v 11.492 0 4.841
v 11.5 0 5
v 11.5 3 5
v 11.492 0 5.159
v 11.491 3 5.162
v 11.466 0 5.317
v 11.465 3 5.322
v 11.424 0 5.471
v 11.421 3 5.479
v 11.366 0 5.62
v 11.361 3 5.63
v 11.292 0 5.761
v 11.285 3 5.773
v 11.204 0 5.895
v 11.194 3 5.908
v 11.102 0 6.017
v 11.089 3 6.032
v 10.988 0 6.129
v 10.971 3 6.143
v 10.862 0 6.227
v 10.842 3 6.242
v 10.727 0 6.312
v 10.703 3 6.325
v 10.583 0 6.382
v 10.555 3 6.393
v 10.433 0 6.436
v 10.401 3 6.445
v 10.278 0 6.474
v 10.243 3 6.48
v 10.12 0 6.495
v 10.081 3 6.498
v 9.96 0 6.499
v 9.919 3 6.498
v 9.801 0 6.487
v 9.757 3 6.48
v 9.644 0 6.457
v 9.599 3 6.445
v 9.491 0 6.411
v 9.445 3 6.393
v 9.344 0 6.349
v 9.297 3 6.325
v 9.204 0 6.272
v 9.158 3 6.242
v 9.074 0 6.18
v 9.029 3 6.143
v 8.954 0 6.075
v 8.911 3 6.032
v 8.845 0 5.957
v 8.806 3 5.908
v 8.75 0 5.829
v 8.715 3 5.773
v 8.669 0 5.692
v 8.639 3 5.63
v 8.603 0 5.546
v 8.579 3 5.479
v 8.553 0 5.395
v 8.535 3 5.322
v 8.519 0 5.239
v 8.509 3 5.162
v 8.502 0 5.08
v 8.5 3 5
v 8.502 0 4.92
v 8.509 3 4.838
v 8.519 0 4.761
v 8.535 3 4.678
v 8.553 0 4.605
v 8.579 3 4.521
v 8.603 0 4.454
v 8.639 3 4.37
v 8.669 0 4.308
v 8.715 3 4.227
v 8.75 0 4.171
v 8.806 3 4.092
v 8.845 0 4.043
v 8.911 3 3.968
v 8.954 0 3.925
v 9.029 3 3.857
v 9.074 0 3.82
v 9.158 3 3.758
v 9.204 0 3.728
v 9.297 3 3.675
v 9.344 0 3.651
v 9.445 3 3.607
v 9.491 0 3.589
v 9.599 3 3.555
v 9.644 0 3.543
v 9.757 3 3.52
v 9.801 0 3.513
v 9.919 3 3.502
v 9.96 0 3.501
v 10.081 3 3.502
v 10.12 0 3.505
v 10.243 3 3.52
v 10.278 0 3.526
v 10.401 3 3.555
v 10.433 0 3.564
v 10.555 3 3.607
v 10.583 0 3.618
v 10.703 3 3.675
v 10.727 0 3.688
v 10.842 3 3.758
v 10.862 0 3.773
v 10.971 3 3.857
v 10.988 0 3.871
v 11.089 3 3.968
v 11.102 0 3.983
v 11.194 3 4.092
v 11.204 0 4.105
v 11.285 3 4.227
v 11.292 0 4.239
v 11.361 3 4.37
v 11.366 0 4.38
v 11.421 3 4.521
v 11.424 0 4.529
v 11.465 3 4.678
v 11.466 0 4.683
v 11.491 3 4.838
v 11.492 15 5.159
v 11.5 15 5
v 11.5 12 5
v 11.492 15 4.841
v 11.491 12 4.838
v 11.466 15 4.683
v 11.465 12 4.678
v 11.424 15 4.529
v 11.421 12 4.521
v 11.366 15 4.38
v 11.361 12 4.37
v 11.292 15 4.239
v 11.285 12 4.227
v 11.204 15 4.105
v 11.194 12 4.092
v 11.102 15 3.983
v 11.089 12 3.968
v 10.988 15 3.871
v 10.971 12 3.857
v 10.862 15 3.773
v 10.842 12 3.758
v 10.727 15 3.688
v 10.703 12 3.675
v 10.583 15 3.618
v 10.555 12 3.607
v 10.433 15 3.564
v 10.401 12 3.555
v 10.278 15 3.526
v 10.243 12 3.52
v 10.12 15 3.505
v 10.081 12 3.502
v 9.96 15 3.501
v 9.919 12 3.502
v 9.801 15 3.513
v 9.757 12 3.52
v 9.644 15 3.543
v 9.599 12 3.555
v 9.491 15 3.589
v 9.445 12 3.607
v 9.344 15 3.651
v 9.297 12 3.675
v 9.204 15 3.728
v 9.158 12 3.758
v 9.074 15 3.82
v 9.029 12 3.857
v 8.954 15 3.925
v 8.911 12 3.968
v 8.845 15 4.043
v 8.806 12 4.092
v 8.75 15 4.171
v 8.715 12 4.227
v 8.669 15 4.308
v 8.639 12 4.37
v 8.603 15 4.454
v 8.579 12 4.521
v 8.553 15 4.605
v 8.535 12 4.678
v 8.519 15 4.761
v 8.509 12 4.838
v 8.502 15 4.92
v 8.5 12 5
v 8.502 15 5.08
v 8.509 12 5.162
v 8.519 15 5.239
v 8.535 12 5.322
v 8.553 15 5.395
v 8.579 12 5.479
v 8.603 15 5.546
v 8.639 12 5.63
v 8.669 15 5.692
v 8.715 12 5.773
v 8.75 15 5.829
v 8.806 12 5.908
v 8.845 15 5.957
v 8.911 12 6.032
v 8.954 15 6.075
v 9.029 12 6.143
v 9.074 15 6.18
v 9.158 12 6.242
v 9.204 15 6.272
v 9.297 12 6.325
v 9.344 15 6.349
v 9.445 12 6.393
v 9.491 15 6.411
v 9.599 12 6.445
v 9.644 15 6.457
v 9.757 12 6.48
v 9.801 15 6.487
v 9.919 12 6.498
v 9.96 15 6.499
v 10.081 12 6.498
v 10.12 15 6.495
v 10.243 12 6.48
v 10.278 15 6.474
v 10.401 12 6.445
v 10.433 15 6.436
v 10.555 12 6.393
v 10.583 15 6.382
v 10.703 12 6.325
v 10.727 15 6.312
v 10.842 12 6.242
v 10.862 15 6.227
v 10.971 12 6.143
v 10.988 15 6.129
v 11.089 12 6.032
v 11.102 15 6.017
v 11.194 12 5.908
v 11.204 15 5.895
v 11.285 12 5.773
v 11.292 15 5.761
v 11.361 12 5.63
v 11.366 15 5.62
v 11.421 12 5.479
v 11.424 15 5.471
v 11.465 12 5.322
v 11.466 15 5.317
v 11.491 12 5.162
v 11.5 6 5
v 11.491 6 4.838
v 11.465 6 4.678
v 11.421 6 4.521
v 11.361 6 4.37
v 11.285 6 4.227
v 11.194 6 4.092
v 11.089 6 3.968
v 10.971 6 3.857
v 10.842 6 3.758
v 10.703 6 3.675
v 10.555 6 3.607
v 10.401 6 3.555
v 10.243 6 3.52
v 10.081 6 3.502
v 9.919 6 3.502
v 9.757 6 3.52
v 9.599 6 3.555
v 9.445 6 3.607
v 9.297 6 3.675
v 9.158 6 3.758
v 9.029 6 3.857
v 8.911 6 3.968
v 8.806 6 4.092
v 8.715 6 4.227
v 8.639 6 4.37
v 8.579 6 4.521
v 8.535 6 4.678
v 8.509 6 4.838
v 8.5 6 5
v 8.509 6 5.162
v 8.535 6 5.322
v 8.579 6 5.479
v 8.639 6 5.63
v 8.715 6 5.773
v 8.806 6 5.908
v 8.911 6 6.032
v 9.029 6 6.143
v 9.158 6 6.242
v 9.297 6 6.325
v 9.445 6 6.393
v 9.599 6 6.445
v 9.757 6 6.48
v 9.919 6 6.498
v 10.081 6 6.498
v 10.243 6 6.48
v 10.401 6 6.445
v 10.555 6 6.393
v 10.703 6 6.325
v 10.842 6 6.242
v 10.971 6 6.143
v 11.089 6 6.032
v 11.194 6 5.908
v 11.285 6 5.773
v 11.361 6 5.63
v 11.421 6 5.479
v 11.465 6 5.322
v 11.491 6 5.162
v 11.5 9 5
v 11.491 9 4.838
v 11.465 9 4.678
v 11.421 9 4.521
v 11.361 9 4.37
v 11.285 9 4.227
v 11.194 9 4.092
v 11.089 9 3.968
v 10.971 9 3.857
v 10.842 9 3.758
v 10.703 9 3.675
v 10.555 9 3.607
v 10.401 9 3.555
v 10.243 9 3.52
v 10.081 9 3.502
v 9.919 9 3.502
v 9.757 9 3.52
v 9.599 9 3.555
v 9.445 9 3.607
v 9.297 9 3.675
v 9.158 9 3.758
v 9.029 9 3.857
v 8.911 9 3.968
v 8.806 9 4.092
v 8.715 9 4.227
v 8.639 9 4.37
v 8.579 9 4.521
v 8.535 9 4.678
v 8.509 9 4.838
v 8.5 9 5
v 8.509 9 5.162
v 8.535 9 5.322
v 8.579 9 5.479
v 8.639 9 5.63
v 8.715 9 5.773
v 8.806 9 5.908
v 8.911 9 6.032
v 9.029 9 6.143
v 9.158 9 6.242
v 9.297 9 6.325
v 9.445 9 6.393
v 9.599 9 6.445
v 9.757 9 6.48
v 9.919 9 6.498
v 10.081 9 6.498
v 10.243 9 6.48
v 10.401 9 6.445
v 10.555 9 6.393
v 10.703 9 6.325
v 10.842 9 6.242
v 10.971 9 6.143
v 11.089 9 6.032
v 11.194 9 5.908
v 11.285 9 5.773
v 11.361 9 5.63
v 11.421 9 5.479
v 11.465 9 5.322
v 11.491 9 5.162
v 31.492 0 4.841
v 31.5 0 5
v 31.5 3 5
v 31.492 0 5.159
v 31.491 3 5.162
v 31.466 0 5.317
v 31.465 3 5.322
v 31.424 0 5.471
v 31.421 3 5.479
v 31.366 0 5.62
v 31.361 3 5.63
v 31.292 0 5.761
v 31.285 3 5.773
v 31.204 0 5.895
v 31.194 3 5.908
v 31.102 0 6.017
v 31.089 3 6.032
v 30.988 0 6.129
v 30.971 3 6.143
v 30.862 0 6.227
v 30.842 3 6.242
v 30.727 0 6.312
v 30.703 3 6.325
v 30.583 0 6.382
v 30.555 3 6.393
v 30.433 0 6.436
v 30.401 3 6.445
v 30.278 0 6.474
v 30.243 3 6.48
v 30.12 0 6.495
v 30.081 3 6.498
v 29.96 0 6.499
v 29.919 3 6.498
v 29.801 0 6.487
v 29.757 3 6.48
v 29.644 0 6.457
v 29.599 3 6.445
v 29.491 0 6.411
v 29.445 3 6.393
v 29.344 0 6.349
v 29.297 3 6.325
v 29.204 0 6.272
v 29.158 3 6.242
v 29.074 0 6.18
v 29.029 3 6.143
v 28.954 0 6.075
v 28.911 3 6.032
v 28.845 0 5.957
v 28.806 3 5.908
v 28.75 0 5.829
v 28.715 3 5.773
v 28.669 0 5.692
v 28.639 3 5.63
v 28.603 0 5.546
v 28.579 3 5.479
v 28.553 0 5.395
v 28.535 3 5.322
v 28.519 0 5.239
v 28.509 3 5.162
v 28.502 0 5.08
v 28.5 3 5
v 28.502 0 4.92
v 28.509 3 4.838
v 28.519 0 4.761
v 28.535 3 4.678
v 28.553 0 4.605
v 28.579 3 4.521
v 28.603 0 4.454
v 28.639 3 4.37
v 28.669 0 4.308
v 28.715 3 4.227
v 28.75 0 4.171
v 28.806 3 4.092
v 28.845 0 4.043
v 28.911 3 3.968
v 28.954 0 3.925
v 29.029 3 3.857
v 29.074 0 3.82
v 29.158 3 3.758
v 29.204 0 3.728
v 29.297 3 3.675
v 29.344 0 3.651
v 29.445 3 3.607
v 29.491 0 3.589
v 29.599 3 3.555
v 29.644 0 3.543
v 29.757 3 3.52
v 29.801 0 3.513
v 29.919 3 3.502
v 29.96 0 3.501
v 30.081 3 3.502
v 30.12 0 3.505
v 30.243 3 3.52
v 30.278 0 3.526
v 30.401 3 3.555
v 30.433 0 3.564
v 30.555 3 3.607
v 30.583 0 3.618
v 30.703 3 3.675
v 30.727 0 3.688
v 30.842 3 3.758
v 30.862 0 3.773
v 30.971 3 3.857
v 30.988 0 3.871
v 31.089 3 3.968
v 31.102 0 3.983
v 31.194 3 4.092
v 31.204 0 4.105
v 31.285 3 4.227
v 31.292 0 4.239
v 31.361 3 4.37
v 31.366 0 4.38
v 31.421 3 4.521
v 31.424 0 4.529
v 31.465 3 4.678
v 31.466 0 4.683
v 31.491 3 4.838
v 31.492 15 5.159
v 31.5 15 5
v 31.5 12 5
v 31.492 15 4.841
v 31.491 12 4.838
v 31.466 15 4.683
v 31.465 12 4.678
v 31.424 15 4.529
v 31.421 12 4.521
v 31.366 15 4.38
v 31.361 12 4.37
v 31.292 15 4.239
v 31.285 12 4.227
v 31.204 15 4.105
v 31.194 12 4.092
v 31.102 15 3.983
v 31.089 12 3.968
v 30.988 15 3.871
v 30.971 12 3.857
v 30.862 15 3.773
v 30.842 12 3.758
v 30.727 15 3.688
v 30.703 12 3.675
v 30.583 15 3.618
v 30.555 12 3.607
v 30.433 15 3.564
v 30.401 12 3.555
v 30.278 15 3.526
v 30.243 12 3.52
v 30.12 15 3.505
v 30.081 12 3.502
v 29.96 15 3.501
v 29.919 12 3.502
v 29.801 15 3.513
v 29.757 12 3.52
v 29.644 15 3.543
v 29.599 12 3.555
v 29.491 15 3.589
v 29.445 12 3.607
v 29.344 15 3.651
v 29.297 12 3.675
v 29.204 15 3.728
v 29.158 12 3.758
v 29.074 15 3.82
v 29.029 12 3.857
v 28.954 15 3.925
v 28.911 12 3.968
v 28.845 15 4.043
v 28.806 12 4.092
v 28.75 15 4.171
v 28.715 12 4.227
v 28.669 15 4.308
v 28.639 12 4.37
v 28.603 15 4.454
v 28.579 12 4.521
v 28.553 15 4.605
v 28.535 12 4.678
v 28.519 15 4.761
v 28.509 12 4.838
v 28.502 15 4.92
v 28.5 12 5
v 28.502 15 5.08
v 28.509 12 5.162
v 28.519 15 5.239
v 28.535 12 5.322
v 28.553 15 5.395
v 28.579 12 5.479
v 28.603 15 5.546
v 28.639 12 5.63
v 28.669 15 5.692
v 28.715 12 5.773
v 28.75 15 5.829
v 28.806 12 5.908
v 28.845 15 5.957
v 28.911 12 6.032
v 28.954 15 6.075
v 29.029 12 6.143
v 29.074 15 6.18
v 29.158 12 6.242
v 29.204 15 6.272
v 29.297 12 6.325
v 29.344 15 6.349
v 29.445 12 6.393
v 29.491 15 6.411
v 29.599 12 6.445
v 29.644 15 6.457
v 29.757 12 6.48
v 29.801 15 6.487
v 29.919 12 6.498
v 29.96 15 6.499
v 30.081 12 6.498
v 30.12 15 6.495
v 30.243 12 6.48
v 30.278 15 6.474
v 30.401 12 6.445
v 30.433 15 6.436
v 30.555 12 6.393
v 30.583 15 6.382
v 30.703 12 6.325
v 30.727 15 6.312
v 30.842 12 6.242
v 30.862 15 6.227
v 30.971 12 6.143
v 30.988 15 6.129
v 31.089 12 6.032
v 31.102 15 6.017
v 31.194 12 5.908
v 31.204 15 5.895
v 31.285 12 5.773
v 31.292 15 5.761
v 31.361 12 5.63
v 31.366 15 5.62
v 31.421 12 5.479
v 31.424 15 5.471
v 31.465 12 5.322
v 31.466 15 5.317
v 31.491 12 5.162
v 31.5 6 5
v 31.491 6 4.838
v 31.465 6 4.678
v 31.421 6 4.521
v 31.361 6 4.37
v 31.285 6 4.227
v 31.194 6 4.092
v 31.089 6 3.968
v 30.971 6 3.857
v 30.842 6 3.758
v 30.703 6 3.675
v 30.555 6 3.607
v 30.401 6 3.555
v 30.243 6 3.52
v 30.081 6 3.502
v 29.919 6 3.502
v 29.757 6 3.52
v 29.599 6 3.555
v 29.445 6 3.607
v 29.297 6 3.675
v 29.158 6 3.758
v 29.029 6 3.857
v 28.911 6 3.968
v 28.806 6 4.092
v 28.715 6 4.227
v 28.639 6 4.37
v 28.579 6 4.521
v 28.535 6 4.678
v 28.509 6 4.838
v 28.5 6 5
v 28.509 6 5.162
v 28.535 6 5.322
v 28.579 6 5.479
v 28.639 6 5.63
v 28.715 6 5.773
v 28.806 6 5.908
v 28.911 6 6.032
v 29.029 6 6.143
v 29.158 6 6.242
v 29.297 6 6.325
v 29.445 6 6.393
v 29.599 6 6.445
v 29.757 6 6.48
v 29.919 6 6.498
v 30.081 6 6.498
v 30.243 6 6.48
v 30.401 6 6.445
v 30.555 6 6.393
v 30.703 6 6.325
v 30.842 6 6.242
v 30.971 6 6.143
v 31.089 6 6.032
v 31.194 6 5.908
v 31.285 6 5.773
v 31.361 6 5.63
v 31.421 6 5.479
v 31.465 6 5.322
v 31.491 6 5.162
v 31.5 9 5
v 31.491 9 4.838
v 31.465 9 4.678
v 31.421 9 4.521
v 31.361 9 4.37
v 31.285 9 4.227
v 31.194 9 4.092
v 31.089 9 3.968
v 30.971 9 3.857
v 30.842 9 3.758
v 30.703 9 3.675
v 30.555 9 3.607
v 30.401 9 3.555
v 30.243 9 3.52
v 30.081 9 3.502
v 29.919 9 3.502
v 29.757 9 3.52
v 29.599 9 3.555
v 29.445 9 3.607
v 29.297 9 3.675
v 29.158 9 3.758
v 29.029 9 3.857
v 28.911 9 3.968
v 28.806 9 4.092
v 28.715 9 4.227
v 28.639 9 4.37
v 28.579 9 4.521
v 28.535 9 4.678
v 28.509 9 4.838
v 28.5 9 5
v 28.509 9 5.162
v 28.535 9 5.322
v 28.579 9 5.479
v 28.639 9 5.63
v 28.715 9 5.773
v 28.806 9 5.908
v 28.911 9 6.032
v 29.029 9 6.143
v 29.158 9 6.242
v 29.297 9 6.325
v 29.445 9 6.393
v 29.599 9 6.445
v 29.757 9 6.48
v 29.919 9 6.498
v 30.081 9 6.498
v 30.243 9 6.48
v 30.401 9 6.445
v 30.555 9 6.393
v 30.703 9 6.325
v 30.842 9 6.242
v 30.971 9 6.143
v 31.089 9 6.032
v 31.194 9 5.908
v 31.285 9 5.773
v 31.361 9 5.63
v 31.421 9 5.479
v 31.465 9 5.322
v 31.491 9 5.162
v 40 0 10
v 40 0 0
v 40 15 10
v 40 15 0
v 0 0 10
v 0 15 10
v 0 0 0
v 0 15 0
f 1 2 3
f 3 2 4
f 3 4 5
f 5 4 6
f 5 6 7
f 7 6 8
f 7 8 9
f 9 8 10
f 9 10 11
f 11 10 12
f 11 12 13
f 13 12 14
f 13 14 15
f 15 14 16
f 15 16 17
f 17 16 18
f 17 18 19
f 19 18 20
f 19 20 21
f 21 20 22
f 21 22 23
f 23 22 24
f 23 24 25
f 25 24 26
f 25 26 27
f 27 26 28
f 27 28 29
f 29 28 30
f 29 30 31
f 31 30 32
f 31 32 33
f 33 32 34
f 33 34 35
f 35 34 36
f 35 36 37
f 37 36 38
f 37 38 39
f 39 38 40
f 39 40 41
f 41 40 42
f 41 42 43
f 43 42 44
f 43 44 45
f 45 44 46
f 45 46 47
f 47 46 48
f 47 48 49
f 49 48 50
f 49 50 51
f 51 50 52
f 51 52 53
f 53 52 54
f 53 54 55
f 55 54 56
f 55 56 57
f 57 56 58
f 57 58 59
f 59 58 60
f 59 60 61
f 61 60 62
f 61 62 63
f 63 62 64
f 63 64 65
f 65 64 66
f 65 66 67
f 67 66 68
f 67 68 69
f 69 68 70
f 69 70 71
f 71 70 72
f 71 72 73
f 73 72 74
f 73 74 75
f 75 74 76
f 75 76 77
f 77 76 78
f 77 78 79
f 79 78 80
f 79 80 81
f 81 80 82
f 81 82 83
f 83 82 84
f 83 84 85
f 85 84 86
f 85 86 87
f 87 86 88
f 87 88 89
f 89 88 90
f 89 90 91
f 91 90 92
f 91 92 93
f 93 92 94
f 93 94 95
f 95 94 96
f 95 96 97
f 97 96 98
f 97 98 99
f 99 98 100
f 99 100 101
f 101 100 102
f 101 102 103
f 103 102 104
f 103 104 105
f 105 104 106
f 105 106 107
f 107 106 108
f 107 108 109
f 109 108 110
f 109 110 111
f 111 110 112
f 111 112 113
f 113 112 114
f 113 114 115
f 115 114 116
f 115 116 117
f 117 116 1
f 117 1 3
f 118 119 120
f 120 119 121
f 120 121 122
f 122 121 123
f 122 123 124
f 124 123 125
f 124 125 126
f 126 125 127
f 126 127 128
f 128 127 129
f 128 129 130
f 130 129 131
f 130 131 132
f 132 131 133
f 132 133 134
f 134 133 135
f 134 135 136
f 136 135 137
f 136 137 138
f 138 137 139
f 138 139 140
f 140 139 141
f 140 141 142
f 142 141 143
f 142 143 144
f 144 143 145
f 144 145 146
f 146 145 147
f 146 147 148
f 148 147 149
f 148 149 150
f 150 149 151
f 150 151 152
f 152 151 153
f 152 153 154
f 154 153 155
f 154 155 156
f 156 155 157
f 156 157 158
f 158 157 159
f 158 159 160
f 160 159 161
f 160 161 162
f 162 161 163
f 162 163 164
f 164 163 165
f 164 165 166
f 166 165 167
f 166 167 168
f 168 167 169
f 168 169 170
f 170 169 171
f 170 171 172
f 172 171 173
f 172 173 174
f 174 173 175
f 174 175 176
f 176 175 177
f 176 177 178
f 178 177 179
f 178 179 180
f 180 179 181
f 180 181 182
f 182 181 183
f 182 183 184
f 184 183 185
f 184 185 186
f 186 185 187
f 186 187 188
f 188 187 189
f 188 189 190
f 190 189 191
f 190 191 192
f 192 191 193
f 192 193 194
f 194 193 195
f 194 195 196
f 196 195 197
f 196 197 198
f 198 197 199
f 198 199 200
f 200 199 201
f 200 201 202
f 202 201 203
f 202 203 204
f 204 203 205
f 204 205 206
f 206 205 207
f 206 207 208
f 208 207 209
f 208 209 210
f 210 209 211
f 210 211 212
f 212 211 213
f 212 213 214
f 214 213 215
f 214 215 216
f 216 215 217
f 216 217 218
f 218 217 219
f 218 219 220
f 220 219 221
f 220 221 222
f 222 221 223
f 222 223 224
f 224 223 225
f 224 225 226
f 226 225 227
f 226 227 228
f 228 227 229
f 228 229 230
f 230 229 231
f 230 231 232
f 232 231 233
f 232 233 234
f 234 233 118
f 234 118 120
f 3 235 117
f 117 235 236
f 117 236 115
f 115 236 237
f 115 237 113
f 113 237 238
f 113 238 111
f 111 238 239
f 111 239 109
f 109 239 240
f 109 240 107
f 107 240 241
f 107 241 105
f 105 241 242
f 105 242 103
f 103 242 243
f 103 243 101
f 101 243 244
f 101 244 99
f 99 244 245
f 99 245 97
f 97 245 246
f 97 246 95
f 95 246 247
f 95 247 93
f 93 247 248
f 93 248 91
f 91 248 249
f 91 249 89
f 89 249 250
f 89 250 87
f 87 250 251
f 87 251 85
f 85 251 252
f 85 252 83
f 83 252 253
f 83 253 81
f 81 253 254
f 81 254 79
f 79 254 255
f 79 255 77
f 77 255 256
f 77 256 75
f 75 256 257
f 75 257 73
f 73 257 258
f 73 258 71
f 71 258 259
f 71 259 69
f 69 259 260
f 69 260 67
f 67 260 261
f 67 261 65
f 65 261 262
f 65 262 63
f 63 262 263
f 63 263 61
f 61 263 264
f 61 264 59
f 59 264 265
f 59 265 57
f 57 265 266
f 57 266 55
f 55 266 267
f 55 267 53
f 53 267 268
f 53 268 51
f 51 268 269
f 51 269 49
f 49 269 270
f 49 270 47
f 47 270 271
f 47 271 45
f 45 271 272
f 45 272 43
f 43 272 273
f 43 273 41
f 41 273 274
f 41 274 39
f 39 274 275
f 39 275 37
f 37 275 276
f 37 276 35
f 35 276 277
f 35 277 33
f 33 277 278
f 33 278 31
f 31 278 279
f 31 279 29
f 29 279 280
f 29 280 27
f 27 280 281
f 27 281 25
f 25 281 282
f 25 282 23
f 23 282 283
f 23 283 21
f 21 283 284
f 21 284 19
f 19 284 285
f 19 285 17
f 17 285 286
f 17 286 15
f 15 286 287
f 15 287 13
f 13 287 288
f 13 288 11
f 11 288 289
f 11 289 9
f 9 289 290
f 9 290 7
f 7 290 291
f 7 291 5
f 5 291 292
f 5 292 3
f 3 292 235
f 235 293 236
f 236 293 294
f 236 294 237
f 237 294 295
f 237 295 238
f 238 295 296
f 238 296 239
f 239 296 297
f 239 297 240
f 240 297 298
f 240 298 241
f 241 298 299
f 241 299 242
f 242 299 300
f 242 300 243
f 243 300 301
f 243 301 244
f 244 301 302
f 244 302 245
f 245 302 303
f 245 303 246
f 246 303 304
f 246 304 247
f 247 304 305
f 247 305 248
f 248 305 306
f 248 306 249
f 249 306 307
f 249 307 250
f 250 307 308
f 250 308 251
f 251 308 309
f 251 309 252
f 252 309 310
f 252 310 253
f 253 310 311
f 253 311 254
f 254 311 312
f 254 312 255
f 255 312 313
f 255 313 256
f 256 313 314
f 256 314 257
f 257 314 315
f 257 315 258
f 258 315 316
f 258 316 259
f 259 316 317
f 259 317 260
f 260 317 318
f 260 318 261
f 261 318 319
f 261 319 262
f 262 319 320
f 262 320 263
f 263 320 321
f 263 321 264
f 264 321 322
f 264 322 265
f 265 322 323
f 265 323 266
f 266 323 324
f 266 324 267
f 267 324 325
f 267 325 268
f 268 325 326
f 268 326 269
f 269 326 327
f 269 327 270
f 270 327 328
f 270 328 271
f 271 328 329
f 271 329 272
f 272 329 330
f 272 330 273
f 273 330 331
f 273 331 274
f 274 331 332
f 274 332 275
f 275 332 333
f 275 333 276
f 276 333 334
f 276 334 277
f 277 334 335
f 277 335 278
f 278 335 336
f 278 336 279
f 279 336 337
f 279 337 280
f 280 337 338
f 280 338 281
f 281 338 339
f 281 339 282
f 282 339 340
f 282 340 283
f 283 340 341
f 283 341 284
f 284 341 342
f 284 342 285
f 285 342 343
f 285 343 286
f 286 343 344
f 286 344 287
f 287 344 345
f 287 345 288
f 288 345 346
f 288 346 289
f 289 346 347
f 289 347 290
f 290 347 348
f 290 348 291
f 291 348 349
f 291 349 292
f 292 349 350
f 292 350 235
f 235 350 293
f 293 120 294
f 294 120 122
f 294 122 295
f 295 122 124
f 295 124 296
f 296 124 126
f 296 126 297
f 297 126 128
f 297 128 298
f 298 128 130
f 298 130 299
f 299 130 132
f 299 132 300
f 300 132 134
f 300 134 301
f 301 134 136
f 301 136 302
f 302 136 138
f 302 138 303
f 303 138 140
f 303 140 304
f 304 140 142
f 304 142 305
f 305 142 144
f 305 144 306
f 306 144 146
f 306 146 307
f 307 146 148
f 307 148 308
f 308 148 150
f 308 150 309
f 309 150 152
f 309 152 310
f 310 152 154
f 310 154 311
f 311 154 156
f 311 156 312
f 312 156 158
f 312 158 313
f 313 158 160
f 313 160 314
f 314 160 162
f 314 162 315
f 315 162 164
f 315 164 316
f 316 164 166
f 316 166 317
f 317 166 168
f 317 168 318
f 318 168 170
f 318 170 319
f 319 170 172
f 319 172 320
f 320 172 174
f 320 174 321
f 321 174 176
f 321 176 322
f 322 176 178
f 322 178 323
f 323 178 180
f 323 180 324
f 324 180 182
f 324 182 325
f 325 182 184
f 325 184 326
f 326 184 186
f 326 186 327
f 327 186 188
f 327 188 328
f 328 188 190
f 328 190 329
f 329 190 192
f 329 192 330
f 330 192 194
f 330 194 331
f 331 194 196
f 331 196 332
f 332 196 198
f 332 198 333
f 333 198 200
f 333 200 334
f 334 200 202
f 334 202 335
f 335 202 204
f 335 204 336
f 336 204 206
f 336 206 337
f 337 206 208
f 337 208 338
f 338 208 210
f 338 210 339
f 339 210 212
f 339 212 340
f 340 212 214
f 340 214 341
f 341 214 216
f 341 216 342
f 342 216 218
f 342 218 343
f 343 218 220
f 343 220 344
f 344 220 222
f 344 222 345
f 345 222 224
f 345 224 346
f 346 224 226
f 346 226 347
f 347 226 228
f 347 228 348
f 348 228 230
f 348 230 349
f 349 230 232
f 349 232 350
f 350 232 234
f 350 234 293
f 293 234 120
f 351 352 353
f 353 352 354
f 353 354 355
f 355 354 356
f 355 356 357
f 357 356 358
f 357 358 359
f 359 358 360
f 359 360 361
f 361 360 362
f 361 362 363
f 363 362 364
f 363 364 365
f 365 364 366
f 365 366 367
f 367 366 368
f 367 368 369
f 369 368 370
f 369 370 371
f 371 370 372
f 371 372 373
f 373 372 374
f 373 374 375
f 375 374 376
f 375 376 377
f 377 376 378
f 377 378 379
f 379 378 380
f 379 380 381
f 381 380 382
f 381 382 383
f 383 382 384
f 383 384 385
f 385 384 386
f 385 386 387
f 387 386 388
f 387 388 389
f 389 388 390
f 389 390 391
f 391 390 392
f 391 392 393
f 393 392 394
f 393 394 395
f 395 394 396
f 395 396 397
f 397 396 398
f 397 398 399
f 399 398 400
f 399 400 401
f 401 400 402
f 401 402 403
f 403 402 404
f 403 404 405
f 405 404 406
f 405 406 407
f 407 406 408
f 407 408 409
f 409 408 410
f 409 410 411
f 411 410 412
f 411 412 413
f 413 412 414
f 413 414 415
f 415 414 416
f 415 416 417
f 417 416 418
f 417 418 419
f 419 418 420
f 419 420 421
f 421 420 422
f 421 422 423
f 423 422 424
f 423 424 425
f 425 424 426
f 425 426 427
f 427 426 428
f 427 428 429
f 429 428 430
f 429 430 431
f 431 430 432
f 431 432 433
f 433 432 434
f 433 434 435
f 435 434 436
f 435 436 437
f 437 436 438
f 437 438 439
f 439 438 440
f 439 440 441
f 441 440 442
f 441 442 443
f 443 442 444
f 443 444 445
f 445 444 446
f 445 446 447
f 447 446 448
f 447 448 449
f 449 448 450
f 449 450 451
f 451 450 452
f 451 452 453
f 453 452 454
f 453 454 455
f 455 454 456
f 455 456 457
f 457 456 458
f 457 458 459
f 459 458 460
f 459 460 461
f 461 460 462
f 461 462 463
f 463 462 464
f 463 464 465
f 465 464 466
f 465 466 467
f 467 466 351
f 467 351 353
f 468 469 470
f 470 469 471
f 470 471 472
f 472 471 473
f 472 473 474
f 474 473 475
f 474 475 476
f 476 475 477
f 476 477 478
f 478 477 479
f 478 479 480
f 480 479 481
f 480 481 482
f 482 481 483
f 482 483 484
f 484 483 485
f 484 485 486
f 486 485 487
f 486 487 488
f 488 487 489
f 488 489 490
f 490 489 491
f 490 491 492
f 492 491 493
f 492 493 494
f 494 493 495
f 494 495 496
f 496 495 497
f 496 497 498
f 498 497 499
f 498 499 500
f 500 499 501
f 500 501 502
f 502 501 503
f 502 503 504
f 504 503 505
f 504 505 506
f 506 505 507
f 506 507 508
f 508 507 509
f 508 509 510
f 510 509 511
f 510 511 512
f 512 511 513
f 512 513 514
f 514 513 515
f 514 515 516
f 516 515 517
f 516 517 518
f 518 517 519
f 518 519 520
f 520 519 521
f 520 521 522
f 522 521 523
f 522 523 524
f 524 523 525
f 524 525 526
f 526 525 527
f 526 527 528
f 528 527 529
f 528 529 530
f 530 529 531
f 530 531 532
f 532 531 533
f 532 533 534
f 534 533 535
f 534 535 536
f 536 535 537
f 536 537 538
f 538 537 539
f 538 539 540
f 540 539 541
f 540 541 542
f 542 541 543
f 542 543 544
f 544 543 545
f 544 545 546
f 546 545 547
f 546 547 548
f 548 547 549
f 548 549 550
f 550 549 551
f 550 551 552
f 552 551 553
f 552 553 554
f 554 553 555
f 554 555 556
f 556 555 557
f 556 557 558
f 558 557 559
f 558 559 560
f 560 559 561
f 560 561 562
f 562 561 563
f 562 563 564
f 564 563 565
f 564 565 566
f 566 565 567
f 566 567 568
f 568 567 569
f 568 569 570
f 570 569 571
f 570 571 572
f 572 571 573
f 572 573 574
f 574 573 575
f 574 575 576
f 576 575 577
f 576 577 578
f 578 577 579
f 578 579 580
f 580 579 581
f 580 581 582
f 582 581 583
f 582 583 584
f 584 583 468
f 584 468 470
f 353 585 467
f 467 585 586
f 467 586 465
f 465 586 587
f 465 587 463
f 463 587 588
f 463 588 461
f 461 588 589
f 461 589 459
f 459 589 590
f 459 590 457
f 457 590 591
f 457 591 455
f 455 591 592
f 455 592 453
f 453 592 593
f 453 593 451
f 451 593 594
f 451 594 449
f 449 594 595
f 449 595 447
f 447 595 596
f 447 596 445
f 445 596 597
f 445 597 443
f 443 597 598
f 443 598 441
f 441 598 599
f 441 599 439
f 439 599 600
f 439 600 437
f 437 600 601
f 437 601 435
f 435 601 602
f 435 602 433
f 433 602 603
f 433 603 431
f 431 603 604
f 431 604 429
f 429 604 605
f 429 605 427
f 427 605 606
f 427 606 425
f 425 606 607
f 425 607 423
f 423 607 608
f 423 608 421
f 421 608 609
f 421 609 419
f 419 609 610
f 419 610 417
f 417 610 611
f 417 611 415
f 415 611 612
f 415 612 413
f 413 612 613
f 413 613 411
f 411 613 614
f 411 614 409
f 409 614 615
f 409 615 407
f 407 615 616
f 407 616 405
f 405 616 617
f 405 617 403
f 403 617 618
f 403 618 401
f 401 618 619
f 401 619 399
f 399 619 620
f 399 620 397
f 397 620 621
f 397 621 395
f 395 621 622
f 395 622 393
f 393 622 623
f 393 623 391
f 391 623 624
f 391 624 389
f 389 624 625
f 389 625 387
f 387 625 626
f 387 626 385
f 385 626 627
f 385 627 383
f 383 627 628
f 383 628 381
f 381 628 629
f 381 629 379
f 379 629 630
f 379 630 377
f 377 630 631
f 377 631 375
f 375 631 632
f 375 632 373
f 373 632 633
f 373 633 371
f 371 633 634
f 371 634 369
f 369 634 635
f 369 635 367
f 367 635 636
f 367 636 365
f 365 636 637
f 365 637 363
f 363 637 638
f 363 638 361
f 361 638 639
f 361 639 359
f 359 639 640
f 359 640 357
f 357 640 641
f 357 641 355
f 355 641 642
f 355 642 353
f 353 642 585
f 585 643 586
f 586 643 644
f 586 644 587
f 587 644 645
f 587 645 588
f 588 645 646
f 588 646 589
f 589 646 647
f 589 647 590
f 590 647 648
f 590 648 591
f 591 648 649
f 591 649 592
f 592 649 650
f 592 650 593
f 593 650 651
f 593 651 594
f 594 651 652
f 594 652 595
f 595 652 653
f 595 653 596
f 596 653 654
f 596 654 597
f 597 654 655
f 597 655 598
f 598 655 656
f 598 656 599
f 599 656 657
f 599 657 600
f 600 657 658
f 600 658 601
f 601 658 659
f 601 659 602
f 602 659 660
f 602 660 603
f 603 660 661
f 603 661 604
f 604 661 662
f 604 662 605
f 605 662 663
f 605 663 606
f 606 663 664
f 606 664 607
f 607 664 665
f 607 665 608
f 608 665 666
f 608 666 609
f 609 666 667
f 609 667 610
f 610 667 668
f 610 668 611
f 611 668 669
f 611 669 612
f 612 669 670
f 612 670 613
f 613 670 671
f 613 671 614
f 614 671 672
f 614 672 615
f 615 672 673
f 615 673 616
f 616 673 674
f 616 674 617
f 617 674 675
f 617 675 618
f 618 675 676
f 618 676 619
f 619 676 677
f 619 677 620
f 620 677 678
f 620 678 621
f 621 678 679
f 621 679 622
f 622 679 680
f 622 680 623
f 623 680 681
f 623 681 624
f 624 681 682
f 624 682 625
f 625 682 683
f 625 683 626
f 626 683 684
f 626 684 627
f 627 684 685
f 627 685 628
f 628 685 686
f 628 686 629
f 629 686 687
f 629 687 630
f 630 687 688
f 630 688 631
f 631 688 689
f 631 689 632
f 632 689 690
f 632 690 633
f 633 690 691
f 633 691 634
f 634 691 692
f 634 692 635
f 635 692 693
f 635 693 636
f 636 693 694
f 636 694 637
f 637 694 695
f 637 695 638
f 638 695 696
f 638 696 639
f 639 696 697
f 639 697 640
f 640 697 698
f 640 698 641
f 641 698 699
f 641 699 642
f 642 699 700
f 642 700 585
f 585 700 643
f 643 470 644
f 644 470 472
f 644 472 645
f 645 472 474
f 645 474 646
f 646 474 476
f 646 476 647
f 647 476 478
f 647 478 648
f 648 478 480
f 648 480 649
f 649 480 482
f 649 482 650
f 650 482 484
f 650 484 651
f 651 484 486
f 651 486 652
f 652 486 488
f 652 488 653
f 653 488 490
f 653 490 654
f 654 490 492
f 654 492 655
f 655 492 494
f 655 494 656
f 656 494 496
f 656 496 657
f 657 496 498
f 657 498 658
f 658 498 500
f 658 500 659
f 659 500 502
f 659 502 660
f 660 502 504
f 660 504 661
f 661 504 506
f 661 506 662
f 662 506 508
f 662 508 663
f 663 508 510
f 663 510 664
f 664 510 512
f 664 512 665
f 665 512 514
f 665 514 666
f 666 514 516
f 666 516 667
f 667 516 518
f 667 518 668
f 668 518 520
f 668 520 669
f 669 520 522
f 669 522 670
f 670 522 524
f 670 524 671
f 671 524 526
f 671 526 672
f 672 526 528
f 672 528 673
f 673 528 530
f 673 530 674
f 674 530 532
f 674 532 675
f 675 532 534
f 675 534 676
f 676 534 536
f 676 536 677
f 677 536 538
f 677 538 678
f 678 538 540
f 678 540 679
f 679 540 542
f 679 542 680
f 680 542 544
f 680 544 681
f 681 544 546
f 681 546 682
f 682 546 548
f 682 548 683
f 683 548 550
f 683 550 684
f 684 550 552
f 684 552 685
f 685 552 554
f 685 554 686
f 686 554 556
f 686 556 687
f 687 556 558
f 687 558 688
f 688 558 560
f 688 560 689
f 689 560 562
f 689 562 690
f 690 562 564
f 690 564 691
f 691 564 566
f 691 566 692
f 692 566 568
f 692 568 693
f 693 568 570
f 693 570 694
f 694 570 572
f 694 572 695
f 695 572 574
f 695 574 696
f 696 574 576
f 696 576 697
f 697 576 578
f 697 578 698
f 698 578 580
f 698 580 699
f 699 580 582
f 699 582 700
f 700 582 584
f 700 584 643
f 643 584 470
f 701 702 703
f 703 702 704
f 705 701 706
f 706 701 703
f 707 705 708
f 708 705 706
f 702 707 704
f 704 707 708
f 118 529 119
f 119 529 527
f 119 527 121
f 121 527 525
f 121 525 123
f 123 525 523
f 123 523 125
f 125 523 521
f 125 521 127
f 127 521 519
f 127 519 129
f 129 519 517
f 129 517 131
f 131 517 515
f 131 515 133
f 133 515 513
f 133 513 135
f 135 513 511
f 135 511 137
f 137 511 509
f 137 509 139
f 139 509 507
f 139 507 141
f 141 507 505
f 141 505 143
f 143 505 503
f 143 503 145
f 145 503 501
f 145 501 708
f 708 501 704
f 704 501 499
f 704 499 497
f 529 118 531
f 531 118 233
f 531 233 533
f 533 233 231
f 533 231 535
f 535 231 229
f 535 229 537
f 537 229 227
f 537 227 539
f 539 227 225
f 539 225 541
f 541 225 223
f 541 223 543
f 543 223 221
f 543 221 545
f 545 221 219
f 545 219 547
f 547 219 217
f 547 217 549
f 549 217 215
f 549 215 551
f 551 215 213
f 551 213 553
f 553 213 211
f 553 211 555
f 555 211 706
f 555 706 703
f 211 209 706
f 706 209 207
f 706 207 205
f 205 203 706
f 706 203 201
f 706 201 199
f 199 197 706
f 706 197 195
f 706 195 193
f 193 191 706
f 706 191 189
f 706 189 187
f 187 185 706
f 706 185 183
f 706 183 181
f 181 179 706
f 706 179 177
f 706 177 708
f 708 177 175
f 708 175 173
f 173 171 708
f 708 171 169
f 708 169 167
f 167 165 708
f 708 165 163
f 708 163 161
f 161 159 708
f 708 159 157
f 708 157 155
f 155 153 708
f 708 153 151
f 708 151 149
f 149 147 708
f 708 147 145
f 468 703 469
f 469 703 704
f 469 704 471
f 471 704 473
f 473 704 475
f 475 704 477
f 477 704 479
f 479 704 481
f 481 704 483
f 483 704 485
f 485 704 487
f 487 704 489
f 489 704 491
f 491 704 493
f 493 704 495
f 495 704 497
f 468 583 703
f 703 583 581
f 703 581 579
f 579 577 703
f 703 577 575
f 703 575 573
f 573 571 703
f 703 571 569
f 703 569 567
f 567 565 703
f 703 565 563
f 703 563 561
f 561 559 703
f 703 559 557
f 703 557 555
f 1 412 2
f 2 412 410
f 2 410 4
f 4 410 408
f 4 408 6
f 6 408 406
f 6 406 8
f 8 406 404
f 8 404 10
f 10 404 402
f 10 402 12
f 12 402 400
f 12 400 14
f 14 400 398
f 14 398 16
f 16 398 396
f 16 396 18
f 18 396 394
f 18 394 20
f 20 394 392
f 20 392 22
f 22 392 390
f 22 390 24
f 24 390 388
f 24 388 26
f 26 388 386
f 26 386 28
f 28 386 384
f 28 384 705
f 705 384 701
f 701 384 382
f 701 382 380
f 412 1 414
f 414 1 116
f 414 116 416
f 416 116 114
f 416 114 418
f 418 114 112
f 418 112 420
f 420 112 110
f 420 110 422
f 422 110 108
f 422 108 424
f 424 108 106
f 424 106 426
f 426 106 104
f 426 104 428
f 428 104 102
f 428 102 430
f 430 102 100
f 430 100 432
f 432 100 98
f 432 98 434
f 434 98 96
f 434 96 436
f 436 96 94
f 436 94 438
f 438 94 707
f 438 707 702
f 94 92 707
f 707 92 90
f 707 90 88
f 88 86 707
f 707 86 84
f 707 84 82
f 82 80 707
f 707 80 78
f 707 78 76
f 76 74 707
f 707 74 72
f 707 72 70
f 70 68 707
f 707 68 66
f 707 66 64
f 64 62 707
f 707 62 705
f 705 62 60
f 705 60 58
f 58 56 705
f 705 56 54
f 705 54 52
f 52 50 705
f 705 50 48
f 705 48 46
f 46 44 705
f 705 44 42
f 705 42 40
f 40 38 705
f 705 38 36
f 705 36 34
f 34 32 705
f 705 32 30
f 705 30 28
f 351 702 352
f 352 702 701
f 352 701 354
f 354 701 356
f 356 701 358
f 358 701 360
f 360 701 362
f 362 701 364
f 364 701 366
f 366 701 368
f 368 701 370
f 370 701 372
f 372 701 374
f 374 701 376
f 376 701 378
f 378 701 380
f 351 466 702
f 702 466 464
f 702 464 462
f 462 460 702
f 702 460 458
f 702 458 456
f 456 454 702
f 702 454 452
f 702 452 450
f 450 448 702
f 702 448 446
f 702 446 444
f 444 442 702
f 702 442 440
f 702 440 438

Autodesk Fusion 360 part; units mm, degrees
sketch "Skizze1" plane through (0, 0, 0) normal (0, 1, 0) x (1, 0, 0)
  line L0 (0, 0) -> (40, 0)
  line L1 (40, 0) -> (40, -10)
  line L2 (40, -10) -> (0, -10)
  line L3 (0, 0) -> (0, -10)
extrude "Extrusion1" add sketch "Skizze1" along normal blind 15
sketch "Skizze2" plane through (0, 15, 0) normal (0, 1, 0) x (-1, 0, 0)
  line L0 (-40, 0) -> (0, 0)
  line L1 (0, 0) -> (0, 10)
  line L2 (0, 10) -> (-40, 10)
  line L3 (-40, 10) -> (-40, 0)
  line L4 (0, 0) -> (-10, 0)
  circle A0 centre (-10, 5) radius 1.5
  circle A1 centre (-30, 5) radius 1.5
  dimension "d3" = 3
  dimension "d4" = 3
extrude "Extrusion2" cut sketch "Skizze2" against normal blind 40 contours A0 | A1
